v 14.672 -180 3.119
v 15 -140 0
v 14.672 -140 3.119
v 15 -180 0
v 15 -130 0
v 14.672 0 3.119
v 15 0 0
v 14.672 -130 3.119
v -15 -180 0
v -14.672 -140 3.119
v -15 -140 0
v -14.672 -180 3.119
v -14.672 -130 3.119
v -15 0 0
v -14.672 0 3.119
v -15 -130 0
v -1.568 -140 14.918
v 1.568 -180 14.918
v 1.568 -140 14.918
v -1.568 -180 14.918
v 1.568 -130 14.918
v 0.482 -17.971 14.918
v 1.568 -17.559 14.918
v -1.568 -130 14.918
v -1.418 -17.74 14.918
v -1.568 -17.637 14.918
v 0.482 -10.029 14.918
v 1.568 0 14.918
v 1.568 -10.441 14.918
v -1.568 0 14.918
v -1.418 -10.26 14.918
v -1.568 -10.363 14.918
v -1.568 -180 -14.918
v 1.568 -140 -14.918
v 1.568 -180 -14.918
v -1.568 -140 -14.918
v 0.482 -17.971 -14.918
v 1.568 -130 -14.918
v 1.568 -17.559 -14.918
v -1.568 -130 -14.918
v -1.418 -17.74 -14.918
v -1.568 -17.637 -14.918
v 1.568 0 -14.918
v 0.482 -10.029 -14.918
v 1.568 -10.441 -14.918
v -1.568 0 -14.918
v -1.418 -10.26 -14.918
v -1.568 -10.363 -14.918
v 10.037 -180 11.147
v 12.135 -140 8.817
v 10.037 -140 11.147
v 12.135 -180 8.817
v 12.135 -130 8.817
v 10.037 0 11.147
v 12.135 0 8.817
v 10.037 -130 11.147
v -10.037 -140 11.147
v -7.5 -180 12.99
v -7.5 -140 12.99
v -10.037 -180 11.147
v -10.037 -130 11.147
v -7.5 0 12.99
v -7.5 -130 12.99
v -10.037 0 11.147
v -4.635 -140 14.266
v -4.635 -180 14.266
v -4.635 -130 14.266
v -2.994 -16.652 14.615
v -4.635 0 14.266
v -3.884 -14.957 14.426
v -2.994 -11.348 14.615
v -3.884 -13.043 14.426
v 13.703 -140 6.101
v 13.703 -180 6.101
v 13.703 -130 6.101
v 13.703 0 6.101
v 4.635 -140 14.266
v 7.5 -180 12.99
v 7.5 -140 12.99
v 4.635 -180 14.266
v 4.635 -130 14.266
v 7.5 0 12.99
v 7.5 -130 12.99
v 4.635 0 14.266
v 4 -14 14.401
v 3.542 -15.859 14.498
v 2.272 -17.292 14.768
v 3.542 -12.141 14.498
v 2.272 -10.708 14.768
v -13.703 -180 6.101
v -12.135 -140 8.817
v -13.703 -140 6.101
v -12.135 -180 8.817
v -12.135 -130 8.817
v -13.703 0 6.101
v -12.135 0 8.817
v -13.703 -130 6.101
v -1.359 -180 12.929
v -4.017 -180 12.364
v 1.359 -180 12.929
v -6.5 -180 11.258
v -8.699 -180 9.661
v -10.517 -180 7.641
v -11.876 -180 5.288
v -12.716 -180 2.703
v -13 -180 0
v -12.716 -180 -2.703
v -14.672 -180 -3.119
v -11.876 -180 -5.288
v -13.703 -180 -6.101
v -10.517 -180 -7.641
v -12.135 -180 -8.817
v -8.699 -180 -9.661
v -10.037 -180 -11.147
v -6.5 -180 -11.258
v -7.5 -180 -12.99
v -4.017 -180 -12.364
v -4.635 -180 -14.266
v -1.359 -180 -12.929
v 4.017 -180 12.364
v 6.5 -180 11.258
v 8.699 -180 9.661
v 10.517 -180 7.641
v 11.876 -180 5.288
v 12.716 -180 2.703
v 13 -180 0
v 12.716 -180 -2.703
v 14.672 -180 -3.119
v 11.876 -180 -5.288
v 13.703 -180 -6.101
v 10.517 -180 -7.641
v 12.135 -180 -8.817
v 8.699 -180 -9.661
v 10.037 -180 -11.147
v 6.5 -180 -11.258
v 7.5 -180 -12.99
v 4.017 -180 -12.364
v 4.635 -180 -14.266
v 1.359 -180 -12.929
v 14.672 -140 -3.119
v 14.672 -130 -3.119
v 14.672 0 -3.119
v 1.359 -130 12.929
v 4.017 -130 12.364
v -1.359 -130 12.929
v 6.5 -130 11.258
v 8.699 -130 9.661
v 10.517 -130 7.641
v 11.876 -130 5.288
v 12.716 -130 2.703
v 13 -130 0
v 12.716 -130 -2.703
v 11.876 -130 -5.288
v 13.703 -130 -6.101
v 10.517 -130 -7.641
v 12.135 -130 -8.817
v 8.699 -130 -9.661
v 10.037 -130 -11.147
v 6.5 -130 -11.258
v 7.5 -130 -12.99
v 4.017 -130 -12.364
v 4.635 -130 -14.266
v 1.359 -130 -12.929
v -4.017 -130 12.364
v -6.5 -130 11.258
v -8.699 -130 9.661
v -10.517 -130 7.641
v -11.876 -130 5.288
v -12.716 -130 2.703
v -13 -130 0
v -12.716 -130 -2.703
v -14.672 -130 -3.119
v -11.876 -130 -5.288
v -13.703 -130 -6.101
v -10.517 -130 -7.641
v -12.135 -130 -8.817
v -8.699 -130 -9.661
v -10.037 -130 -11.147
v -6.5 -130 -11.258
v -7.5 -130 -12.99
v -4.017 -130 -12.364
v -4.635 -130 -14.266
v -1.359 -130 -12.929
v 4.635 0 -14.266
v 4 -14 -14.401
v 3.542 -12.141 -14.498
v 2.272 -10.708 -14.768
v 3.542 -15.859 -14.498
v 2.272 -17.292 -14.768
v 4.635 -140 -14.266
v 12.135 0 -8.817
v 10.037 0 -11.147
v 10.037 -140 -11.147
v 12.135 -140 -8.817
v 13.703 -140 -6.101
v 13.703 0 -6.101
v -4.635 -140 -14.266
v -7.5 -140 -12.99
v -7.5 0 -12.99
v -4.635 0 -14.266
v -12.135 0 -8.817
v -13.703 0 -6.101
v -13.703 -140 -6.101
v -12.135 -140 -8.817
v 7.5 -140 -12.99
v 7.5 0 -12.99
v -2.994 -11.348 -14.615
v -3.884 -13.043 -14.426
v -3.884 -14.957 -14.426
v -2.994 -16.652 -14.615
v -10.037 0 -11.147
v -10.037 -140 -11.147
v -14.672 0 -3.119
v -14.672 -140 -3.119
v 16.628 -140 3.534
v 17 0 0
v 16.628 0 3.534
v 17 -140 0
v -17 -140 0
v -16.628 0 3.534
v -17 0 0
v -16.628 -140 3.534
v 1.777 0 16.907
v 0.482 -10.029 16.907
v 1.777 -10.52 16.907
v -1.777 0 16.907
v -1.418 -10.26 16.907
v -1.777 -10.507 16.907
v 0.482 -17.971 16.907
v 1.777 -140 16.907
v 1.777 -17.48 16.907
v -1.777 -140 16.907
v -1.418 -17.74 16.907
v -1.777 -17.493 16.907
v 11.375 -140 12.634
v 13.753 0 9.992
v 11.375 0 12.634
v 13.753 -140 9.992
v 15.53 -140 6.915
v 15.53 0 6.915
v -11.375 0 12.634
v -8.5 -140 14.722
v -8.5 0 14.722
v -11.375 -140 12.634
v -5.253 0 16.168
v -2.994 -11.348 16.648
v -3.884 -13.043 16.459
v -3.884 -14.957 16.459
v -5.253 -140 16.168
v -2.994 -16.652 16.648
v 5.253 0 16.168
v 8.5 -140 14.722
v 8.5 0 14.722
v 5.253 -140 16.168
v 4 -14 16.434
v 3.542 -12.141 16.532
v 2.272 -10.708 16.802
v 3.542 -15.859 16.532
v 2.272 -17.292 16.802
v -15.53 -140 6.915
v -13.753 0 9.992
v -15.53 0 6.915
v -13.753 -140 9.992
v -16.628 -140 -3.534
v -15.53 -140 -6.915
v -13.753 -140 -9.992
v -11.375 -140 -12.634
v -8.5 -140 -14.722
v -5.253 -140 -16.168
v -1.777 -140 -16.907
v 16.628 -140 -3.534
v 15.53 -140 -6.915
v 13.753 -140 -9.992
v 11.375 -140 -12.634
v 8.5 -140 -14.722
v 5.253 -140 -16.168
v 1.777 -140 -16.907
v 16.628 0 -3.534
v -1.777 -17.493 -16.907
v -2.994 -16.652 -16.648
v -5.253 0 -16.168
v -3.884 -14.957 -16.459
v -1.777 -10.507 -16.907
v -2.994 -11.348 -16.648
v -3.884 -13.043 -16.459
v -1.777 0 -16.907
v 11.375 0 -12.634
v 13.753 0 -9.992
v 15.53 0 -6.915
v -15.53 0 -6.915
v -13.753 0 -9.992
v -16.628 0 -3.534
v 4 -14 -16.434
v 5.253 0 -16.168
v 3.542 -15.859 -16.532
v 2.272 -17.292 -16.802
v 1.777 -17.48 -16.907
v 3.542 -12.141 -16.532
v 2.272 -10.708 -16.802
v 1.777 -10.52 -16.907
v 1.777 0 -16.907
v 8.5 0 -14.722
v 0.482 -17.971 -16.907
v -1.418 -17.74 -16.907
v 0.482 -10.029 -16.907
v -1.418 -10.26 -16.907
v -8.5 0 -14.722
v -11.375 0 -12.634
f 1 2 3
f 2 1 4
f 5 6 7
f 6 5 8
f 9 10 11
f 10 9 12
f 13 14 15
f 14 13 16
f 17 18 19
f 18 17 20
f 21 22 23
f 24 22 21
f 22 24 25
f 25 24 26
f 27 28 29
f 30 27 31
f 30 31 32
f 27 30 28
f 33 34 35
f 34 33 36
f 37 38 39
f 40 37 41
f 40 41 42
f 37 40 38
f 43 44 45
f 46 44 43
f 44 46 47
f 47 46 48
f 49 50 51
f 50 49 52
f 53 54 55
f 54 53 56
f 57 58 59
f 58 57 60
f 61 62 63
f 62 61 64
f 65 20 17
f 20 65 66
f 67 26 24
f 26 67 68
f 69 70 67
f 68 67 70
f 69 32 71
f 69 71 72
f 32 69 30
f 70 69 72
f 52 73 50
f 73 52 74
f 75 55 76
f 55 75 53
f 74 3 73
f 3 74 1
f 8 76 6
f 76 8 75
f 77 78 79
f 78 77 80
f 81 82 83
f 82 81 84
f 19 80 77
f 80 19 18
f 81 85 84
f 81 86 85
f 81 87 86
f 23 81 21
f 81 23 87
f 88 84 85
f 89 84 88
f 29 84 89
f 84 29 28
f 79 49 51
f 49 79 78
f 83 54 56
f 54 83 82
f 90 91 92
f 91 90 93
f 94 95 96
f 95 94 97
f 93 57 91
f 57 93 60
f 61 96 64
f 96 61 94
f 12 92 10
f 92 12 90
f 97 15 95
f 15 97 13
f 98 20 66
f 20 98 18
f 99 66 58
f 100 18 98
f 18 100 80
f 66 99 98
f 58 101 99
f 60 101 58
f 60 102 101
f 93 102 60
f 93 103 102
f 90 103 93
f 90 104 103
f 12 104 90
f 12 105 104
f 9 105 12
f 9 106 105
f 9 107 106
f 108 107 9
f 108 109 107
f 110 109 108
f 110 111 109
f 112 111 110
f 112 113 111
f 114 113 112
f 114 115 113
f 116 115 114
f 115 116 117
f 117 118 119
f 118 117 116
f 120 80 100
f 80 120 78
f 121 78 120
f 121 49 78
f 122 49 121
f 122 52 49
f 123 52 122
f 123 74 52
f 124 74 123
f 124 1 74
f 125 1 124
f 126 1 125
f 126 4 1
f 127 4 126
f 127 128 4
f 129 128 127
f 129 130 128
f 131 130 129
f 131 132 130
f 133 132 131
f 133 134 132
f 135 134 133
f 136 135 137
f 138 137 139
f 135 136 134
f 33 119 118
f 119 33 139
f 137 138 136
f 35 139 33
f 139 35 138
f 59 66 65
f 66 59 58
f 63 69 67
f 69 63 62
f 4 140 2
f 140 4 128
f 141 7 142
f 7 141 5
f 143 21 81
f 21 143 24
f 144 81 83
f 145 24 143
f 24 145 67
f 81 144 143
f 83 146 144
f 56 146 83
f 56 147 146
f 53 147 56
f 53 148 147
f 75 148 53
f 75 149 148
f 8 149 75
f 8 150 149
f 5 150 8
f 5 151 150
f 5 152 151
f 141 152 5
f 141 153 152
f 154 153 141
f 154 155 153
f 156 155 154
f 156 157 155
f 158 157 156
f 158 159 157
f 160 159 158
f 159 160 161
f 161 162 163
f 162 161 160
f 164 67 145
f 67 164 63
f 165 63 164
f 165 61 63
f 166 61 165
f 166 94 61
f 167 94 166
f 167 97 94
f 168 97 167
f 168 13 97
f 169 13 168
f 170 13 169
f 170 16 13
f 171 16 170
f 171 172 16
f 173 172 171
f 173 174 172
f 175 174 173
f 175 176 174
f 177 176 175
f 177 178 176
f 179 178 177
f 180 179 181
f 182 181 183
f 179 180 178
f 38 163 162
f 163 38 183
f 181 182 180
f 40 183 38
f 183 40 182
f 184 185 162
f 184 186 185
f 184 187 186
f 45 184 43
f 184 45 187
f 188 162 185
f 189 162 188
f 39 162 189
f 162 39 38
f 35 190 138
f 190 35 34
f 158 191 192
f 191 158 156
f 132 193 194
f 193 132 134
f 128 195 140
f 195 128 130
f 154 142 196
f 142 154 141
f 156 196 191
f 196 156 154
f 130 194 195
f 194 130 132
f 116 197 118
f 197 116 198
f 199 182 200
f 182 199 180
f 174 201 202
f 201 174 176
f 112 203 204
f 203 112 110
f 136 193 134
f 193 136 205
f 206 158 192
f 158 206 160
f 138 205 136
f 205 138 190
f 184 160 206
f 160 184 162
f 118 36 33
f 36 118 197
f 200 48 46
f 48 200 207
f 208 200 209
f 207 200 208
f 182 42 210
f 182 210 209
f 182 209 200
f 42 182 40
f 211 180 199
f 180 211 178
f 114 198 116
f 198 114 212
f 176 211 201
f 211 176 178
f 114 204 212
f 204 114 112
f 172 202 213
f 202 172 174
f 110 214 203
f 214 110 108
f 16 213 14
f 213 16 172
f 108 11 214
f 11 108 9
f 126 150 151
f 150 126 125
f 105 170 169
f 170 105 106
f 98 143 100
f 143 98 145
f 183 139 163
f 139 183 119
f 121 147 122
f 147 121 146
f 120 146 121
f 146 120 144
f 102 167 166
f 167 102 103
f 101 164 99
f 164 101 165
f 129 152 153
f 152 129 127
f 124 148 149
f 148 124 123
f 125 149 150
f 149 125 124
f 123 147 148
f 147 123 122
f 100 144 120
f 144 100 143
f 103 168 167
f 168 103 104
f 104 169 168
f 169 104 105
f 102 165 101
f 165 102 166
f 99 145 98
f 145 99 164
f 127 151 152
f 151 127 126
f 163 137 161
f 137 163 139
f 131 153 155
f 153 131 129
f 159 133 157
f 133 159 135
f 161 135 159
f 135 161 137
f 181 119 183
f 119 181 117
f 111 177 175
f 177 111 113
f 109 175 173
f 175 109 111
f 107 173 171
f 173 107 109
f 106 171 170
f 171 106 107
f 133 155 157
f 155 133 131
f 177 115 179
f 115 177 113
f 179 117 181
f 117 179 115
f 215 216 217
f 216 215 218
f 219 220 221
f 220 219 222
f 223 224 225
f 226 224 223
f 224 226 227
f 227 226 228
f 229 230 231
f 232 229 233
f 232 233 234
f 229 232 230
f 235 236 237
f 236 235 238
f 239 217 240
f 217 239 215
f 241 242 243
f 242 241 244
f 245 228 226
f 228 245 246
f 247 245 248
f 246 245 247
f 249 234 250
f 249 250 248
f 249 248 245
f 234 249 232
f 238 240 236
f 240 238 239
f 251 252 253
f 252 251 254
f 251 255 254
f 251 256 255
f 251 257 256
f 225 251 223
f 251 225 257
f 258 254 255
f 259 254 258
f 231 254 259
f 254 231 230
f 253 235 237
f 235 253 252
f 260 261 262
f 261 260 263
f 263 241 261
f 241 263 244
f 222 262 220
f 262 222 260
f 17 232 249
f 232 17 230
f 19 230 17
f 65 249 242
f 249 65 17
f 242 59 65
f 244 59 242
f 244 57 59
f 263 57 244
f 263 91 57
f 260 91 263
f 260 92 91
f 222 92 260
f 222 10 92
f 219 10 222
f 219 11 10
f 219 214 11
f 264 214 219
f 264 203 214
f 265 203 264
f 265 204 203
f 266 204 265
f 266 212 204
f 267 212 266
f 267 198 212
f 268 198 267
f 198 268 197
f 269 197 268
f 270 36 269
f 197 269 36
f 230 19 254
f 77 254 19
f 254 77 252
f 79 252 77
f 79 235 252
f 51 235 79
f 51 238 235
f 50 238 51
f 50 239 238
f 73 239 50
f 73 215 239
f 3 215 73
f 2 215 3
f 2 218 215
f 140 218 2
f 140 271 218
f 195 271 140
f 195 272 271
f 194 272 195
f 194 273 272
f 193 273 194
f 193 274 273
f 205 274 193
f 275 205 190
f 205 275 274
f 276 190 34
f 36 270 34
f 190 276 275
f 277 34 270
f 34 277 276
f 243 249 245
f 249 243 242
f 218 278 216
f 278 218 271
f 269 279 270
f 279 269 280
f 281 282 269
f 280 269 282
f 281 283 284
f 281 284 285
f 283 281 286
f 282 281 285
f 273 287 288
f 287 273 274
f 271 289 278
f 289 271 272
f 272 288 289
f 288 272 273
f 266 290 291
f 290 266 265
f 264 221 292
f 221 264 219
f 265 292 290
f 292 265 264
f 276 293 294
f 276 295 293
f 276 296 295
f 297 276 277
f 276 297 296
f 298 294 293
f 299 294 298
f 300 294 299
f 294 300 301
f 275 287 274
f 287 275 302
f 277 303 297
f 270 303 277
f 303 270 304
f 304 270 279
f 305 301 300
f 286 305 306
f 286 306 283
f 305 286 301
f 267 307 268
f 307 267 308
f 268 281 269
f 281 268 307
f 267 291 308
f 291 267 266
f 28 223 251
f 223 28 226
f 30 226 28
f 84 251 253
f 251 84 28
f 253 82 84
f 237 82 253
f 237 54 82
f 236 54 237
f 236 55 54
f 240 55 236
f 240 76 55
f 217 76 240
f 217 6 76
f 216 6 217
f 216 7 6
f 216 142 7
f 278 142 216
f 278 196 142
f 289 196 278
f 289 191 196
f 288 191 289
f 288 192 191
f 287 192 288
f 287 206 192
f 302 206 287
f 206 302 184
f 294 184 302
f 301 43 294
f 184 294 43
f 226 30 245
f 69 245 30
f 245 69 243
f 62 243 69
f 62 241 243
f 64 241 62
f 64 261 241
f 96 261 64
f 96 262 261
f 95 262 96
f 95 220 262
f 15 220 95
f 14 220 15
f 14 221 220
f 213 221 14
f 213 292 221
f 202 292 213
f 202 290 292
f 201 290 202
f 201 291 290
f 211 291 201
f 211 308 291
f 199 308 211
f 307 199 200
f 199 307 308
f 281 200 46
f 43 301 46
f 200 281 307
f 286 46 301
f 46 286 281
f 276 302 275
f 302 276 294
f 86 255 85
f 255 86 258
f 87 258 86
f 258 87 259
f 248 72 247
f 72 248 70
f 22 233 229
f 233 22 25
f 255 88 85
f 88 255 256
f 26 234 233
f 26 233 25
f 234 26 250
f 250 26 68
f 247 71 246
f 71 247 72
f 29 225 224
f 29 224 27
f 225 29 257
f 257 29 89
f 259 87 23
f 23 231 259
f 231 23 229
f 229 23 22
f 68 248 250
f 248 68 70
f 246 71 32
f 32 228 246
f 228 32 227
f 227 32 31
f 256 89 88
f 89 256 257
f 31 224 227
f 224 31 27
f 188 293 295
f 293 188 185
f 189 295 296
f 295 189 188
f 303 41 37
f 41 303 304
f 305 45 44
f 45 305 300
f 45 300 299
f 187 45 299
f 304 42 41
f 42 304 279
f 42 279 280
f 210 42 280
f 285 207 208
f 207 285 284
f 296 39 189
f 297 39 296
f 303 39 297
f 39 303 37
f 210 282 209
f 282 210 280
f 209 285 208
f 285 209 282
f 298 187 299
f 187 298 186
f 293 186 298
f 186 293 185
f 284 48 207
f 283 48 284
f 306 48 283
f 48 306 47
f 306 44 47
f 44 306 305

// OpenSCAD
diameter = 30; //28;
thickness = 2;
length_outter = 140;
length_inner = 40;
overlap = 10;

knob_diameter = 8; //6;
knob_distance = 14;

rotate([90, 0, 0]) {
    difference() {
        cylinder(r=diameter/2+thickness, length_outter);
        cylinder(r=diameter/2, length_outter);
        translate([0, diameter/2 + thickness, knob_distance]) rotate([90, 0, 0]) cylinder(r=knob_diameter/2, 2 * thickness);
        translate([0, -(diameter/2) + thickness, knob_distance]) rotate([90, 0, 0]) cylinder(r=knob_diameter/2, 2 * thickness);
    }


    translate([0, 0, length_outter - overlap]) difference() {
        cylinder(r=diameter/2, length_inner + overlap);
        cylinder(r=diameter/2 - thickness, length_inner + overlap);
    }
}
